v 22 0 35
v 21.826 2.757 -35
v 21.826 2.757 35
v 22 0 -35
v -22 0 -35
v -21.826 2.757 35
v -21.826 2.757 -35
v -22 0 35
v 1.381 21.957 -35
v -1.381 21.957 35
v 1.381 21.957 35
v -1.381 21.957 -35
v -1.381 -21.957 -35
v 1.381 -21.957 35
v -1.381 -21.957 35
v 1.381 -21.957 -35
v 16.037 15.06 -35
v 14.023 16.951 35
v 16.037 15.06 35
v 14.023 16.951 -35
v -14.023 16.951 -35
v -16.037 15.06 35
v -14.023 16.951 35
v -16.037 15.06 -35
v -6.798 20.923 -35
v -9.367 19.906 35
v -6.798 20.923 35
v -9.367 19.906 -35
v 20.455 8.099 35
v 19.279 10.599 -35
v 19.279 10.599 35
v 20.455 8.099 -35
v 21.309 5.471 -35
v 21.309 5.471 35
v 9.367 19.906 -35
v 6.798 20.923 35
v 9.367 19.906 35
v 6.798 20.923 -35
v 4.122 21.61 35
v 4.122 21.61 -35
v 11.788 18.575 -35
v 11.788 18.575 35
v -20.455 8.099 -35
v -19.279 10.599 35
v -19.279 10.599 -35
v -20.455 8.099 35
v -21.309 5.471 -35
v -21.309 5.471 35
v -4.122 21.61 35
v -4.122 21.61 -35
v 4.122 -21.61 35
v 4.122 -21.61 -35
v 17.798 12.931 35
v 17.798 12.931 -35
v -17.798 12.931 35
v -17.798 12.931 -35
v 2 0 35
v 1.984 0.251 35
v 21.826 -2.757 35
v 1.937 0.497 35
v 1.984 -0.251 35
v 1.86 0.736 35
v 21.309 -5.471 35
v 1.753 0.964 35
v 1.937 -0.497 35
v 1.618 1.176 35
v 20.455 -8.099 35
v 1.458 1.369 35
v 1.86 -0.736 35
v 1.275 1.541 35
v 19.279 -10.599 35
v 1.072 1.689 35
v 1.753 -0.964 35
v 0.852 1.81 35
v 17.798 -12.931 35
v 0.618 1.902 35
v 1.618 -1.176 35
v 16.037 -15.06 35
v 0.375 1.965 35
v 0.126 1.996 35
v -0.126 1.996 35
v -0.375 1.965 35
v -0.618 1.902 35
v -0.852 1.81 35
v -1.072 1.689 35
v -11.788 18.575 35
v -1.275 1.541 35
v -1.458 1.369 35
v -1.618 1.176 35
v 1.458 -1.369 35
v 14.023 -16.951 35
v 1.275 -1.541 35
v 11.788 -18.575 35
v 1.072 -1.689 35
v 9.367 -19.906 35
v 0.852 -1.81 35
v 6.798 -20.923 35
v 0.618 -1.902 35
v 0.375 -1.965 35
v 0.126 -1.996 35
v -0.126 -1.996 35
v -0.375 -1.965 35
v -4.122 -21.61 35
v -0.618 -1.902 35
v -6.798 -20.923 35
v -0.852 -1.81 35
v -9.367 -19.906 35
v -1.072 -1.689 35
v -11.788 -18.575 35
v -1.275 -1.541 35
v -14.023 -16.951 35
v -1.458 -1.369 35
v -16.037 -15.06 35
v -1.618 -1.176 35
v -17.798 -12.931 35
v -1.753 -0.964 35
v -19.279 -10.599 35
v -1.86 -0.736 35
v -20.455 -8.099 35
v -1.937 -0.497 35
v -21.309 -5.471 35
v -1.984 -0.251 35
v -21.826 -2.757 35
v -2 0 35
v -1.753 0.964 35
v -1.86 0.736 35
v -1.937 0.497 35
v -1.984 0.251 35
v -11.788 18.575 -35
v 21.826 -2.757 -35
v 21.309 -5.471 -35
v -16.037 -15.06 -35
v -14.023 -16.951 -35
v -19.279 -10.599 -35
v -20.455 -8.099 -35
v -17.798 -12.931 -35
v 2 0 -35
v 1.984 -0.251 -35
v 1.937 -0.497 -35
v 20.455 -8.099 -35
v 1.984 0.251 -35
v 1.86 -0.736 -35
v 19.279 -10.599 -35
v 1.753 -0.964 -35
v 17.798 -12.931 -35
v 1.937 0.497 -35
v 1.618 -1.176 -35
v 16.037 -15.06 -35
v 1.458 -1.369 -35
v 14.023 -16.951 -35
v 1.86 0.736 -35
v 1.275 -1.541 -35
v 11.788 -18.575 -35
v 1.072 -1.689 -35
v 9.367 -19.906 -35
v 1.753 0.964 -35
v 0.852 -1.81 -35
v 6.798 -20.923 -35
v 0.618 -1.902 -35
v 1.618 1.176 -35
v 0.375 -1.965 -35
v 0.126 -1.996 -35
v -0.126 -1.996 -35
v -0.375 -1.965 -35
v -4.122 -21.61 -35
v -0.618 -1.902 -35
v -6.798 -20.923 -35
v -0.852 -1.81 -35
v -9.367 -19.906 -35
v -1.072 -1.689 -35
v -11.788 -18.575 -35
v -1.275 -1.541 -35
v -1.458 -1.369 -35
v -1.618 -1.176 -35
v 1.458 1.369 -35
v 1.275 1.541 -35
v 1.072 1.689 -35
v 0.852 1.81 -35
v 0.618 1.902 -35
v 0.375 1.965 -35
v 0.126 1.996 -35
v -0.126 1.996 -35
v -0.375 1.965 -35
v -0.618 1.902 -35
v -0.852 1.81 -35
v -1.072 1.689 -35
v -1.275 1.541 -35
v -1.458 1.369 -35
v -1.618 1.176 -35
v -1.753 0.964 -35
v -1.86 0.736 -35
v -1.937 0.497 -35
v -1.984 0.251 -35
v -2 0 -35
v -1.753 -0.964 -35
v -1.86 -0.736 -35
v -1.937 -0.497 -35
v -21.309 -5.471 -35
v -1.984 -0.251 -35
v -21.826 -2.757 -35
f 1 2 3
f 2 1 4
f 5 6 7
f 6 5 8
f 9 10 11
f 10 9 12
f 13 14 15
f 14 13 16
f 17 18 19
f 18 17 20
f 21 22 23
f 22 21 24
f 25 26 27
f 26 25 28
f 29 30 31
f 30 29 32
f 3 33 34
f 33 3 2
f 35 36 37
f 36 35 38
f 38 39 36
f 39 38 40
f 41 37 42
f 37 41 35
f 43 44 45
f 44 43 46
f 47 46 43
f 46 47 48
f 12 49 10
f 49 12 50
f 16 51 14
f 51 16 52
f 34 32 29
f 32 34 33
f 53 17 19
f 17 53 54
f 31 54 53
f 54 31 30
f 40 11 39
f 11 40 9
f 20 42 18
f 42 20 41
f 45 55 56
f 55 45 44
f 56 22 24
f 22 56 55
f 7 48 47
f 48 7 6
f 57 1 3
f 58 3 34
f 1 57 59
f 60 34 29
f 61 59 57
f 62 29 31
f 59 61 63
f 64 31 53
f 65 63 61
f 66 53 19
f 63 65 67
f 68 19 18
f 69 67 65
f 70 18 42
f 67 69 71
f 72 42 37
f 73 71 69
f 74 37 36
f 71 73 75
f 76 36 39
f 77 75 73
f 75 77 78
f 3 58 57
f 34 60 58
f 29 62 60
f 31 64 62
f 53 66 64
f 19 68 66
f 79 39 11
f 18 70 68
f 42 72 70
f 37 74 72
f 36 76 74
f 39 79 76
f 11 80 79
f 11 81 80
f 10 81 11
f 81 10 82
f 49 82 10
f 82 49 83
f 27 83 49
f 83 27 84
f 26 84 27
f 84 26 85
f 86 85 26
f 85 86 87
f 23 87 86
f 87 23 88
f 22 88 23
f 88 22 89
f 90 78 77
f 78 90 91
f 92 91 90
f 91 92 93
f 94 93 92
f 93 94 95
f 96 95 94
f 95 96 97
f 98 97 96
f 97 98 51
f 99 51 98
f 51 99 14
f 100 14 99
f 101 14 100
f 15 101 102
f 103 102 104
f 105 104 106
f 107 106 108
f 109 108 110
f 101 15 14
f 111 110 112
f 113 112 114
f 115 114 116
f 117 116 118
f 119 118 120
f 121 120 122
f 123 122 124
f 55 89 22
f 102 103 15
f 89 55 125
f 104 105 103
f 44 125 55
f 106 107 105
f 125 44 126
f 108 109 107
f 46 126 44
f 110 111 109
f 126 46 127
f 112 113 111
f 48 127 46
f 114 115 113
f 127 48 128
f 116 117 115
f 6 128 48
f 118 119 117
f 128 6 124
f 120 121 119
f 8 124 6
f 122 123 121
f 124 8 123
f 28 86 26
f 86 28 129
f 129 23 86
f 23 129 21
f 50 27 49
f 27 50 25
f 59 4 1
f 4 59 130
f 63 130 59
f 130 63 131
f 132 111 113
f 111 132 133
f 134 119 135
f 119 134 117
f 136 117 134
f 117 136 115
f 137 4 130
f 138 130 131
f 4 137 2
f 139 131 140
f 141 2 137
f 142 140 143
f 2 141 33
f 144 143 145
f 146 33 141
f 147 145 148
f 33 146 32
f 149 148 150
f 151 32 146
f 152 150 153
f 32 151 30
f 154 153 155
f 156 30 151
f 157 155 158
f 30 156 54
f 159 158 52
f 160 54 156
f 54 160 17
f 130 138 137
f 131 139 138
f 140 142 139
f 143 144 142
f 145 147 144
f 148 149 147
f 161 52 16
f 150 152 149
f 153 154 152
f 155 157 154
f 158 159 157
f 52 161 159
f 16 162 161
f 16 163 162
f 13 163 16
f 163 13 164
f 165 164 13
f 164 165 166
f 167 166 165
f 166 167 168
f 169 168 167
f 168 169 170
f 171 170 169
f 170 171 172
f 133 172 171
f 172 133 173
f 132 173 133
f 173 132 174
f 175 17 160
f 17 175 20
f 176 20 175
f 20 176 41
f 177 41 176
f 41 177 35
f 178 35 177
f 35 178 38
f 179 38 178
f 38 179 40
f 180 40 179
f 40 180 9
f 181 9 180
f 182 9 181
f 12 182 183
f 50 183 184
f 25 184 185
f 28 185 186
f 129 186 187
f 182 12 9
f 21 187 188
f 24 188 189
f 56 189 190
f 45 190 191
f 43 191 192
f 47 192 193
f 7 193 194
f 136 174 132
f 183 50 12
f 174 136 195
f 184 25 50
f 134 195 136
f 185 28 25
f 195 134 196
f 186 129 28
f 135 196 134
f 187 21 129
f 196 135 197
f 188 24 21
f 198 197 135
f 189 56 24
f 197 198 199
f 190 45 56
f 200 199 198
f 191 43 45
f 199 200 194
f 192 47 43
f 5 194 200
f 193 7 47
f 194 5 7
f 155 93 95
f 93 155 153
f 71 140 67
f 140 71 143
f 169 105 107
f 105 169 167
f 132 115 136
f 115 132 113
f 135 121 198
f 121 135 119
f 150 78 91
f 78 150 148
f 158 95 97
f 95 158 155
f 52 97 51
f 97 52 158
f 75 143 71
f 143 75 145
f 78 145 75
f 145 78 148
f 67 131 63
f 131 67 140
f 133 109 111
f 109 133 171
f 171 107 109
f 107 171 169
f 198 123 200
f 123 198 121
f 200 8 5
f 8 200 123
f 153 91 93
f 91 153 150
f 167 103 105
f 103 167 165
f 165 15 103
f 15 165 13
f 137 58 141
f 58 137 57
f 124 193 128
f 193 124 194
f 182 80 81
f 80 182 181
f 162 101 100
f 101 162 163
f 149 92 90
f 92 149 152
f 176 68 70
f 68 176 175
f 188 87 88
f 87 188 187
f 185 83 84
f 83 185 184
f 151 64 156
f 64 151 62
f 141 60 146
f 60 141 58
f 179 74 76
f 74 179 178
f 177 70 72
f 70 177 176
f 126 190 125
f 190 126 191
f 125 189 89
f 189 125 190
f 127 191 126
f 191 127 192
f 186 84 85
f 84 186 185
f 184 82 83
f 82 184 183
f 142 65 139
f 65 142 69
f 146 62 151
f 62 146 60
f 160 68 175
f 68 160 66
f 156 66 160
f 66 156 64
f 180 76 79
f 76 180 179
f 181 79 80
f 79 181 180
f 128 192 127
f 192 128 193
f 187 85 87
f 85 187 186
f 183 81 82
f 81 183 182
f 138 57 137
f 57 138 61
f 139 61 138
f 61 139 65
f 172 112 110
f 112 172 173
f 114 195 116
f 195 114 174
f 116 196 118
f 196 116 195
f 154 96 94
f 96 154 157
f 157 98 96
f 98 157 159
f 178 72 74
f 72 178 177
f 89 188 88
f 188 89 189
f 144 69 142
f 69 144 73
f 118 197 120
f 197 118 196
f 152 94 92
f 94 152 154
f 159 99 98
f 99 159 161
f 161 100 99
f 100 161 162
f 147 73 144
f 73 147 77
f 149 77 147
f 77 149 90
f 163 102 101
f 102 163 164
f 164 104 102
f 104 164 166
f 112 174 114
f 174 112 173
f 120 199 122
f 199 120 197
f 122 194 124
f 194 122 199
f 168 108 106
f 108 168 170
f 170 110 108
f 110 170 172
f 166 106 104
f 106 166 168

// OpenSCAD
$fn = 50;


difference() {
	union() {
		translate(v = [0, 0, -35.0000000000]) {
			cylinder(h = 70, r = 22.0000000000);
		}
	}
	union() {
		translate(v = [0, 0, -100.0000000000]) {
			cylinder(h = 200, r = 2.0000000000);
		}
	}
}
